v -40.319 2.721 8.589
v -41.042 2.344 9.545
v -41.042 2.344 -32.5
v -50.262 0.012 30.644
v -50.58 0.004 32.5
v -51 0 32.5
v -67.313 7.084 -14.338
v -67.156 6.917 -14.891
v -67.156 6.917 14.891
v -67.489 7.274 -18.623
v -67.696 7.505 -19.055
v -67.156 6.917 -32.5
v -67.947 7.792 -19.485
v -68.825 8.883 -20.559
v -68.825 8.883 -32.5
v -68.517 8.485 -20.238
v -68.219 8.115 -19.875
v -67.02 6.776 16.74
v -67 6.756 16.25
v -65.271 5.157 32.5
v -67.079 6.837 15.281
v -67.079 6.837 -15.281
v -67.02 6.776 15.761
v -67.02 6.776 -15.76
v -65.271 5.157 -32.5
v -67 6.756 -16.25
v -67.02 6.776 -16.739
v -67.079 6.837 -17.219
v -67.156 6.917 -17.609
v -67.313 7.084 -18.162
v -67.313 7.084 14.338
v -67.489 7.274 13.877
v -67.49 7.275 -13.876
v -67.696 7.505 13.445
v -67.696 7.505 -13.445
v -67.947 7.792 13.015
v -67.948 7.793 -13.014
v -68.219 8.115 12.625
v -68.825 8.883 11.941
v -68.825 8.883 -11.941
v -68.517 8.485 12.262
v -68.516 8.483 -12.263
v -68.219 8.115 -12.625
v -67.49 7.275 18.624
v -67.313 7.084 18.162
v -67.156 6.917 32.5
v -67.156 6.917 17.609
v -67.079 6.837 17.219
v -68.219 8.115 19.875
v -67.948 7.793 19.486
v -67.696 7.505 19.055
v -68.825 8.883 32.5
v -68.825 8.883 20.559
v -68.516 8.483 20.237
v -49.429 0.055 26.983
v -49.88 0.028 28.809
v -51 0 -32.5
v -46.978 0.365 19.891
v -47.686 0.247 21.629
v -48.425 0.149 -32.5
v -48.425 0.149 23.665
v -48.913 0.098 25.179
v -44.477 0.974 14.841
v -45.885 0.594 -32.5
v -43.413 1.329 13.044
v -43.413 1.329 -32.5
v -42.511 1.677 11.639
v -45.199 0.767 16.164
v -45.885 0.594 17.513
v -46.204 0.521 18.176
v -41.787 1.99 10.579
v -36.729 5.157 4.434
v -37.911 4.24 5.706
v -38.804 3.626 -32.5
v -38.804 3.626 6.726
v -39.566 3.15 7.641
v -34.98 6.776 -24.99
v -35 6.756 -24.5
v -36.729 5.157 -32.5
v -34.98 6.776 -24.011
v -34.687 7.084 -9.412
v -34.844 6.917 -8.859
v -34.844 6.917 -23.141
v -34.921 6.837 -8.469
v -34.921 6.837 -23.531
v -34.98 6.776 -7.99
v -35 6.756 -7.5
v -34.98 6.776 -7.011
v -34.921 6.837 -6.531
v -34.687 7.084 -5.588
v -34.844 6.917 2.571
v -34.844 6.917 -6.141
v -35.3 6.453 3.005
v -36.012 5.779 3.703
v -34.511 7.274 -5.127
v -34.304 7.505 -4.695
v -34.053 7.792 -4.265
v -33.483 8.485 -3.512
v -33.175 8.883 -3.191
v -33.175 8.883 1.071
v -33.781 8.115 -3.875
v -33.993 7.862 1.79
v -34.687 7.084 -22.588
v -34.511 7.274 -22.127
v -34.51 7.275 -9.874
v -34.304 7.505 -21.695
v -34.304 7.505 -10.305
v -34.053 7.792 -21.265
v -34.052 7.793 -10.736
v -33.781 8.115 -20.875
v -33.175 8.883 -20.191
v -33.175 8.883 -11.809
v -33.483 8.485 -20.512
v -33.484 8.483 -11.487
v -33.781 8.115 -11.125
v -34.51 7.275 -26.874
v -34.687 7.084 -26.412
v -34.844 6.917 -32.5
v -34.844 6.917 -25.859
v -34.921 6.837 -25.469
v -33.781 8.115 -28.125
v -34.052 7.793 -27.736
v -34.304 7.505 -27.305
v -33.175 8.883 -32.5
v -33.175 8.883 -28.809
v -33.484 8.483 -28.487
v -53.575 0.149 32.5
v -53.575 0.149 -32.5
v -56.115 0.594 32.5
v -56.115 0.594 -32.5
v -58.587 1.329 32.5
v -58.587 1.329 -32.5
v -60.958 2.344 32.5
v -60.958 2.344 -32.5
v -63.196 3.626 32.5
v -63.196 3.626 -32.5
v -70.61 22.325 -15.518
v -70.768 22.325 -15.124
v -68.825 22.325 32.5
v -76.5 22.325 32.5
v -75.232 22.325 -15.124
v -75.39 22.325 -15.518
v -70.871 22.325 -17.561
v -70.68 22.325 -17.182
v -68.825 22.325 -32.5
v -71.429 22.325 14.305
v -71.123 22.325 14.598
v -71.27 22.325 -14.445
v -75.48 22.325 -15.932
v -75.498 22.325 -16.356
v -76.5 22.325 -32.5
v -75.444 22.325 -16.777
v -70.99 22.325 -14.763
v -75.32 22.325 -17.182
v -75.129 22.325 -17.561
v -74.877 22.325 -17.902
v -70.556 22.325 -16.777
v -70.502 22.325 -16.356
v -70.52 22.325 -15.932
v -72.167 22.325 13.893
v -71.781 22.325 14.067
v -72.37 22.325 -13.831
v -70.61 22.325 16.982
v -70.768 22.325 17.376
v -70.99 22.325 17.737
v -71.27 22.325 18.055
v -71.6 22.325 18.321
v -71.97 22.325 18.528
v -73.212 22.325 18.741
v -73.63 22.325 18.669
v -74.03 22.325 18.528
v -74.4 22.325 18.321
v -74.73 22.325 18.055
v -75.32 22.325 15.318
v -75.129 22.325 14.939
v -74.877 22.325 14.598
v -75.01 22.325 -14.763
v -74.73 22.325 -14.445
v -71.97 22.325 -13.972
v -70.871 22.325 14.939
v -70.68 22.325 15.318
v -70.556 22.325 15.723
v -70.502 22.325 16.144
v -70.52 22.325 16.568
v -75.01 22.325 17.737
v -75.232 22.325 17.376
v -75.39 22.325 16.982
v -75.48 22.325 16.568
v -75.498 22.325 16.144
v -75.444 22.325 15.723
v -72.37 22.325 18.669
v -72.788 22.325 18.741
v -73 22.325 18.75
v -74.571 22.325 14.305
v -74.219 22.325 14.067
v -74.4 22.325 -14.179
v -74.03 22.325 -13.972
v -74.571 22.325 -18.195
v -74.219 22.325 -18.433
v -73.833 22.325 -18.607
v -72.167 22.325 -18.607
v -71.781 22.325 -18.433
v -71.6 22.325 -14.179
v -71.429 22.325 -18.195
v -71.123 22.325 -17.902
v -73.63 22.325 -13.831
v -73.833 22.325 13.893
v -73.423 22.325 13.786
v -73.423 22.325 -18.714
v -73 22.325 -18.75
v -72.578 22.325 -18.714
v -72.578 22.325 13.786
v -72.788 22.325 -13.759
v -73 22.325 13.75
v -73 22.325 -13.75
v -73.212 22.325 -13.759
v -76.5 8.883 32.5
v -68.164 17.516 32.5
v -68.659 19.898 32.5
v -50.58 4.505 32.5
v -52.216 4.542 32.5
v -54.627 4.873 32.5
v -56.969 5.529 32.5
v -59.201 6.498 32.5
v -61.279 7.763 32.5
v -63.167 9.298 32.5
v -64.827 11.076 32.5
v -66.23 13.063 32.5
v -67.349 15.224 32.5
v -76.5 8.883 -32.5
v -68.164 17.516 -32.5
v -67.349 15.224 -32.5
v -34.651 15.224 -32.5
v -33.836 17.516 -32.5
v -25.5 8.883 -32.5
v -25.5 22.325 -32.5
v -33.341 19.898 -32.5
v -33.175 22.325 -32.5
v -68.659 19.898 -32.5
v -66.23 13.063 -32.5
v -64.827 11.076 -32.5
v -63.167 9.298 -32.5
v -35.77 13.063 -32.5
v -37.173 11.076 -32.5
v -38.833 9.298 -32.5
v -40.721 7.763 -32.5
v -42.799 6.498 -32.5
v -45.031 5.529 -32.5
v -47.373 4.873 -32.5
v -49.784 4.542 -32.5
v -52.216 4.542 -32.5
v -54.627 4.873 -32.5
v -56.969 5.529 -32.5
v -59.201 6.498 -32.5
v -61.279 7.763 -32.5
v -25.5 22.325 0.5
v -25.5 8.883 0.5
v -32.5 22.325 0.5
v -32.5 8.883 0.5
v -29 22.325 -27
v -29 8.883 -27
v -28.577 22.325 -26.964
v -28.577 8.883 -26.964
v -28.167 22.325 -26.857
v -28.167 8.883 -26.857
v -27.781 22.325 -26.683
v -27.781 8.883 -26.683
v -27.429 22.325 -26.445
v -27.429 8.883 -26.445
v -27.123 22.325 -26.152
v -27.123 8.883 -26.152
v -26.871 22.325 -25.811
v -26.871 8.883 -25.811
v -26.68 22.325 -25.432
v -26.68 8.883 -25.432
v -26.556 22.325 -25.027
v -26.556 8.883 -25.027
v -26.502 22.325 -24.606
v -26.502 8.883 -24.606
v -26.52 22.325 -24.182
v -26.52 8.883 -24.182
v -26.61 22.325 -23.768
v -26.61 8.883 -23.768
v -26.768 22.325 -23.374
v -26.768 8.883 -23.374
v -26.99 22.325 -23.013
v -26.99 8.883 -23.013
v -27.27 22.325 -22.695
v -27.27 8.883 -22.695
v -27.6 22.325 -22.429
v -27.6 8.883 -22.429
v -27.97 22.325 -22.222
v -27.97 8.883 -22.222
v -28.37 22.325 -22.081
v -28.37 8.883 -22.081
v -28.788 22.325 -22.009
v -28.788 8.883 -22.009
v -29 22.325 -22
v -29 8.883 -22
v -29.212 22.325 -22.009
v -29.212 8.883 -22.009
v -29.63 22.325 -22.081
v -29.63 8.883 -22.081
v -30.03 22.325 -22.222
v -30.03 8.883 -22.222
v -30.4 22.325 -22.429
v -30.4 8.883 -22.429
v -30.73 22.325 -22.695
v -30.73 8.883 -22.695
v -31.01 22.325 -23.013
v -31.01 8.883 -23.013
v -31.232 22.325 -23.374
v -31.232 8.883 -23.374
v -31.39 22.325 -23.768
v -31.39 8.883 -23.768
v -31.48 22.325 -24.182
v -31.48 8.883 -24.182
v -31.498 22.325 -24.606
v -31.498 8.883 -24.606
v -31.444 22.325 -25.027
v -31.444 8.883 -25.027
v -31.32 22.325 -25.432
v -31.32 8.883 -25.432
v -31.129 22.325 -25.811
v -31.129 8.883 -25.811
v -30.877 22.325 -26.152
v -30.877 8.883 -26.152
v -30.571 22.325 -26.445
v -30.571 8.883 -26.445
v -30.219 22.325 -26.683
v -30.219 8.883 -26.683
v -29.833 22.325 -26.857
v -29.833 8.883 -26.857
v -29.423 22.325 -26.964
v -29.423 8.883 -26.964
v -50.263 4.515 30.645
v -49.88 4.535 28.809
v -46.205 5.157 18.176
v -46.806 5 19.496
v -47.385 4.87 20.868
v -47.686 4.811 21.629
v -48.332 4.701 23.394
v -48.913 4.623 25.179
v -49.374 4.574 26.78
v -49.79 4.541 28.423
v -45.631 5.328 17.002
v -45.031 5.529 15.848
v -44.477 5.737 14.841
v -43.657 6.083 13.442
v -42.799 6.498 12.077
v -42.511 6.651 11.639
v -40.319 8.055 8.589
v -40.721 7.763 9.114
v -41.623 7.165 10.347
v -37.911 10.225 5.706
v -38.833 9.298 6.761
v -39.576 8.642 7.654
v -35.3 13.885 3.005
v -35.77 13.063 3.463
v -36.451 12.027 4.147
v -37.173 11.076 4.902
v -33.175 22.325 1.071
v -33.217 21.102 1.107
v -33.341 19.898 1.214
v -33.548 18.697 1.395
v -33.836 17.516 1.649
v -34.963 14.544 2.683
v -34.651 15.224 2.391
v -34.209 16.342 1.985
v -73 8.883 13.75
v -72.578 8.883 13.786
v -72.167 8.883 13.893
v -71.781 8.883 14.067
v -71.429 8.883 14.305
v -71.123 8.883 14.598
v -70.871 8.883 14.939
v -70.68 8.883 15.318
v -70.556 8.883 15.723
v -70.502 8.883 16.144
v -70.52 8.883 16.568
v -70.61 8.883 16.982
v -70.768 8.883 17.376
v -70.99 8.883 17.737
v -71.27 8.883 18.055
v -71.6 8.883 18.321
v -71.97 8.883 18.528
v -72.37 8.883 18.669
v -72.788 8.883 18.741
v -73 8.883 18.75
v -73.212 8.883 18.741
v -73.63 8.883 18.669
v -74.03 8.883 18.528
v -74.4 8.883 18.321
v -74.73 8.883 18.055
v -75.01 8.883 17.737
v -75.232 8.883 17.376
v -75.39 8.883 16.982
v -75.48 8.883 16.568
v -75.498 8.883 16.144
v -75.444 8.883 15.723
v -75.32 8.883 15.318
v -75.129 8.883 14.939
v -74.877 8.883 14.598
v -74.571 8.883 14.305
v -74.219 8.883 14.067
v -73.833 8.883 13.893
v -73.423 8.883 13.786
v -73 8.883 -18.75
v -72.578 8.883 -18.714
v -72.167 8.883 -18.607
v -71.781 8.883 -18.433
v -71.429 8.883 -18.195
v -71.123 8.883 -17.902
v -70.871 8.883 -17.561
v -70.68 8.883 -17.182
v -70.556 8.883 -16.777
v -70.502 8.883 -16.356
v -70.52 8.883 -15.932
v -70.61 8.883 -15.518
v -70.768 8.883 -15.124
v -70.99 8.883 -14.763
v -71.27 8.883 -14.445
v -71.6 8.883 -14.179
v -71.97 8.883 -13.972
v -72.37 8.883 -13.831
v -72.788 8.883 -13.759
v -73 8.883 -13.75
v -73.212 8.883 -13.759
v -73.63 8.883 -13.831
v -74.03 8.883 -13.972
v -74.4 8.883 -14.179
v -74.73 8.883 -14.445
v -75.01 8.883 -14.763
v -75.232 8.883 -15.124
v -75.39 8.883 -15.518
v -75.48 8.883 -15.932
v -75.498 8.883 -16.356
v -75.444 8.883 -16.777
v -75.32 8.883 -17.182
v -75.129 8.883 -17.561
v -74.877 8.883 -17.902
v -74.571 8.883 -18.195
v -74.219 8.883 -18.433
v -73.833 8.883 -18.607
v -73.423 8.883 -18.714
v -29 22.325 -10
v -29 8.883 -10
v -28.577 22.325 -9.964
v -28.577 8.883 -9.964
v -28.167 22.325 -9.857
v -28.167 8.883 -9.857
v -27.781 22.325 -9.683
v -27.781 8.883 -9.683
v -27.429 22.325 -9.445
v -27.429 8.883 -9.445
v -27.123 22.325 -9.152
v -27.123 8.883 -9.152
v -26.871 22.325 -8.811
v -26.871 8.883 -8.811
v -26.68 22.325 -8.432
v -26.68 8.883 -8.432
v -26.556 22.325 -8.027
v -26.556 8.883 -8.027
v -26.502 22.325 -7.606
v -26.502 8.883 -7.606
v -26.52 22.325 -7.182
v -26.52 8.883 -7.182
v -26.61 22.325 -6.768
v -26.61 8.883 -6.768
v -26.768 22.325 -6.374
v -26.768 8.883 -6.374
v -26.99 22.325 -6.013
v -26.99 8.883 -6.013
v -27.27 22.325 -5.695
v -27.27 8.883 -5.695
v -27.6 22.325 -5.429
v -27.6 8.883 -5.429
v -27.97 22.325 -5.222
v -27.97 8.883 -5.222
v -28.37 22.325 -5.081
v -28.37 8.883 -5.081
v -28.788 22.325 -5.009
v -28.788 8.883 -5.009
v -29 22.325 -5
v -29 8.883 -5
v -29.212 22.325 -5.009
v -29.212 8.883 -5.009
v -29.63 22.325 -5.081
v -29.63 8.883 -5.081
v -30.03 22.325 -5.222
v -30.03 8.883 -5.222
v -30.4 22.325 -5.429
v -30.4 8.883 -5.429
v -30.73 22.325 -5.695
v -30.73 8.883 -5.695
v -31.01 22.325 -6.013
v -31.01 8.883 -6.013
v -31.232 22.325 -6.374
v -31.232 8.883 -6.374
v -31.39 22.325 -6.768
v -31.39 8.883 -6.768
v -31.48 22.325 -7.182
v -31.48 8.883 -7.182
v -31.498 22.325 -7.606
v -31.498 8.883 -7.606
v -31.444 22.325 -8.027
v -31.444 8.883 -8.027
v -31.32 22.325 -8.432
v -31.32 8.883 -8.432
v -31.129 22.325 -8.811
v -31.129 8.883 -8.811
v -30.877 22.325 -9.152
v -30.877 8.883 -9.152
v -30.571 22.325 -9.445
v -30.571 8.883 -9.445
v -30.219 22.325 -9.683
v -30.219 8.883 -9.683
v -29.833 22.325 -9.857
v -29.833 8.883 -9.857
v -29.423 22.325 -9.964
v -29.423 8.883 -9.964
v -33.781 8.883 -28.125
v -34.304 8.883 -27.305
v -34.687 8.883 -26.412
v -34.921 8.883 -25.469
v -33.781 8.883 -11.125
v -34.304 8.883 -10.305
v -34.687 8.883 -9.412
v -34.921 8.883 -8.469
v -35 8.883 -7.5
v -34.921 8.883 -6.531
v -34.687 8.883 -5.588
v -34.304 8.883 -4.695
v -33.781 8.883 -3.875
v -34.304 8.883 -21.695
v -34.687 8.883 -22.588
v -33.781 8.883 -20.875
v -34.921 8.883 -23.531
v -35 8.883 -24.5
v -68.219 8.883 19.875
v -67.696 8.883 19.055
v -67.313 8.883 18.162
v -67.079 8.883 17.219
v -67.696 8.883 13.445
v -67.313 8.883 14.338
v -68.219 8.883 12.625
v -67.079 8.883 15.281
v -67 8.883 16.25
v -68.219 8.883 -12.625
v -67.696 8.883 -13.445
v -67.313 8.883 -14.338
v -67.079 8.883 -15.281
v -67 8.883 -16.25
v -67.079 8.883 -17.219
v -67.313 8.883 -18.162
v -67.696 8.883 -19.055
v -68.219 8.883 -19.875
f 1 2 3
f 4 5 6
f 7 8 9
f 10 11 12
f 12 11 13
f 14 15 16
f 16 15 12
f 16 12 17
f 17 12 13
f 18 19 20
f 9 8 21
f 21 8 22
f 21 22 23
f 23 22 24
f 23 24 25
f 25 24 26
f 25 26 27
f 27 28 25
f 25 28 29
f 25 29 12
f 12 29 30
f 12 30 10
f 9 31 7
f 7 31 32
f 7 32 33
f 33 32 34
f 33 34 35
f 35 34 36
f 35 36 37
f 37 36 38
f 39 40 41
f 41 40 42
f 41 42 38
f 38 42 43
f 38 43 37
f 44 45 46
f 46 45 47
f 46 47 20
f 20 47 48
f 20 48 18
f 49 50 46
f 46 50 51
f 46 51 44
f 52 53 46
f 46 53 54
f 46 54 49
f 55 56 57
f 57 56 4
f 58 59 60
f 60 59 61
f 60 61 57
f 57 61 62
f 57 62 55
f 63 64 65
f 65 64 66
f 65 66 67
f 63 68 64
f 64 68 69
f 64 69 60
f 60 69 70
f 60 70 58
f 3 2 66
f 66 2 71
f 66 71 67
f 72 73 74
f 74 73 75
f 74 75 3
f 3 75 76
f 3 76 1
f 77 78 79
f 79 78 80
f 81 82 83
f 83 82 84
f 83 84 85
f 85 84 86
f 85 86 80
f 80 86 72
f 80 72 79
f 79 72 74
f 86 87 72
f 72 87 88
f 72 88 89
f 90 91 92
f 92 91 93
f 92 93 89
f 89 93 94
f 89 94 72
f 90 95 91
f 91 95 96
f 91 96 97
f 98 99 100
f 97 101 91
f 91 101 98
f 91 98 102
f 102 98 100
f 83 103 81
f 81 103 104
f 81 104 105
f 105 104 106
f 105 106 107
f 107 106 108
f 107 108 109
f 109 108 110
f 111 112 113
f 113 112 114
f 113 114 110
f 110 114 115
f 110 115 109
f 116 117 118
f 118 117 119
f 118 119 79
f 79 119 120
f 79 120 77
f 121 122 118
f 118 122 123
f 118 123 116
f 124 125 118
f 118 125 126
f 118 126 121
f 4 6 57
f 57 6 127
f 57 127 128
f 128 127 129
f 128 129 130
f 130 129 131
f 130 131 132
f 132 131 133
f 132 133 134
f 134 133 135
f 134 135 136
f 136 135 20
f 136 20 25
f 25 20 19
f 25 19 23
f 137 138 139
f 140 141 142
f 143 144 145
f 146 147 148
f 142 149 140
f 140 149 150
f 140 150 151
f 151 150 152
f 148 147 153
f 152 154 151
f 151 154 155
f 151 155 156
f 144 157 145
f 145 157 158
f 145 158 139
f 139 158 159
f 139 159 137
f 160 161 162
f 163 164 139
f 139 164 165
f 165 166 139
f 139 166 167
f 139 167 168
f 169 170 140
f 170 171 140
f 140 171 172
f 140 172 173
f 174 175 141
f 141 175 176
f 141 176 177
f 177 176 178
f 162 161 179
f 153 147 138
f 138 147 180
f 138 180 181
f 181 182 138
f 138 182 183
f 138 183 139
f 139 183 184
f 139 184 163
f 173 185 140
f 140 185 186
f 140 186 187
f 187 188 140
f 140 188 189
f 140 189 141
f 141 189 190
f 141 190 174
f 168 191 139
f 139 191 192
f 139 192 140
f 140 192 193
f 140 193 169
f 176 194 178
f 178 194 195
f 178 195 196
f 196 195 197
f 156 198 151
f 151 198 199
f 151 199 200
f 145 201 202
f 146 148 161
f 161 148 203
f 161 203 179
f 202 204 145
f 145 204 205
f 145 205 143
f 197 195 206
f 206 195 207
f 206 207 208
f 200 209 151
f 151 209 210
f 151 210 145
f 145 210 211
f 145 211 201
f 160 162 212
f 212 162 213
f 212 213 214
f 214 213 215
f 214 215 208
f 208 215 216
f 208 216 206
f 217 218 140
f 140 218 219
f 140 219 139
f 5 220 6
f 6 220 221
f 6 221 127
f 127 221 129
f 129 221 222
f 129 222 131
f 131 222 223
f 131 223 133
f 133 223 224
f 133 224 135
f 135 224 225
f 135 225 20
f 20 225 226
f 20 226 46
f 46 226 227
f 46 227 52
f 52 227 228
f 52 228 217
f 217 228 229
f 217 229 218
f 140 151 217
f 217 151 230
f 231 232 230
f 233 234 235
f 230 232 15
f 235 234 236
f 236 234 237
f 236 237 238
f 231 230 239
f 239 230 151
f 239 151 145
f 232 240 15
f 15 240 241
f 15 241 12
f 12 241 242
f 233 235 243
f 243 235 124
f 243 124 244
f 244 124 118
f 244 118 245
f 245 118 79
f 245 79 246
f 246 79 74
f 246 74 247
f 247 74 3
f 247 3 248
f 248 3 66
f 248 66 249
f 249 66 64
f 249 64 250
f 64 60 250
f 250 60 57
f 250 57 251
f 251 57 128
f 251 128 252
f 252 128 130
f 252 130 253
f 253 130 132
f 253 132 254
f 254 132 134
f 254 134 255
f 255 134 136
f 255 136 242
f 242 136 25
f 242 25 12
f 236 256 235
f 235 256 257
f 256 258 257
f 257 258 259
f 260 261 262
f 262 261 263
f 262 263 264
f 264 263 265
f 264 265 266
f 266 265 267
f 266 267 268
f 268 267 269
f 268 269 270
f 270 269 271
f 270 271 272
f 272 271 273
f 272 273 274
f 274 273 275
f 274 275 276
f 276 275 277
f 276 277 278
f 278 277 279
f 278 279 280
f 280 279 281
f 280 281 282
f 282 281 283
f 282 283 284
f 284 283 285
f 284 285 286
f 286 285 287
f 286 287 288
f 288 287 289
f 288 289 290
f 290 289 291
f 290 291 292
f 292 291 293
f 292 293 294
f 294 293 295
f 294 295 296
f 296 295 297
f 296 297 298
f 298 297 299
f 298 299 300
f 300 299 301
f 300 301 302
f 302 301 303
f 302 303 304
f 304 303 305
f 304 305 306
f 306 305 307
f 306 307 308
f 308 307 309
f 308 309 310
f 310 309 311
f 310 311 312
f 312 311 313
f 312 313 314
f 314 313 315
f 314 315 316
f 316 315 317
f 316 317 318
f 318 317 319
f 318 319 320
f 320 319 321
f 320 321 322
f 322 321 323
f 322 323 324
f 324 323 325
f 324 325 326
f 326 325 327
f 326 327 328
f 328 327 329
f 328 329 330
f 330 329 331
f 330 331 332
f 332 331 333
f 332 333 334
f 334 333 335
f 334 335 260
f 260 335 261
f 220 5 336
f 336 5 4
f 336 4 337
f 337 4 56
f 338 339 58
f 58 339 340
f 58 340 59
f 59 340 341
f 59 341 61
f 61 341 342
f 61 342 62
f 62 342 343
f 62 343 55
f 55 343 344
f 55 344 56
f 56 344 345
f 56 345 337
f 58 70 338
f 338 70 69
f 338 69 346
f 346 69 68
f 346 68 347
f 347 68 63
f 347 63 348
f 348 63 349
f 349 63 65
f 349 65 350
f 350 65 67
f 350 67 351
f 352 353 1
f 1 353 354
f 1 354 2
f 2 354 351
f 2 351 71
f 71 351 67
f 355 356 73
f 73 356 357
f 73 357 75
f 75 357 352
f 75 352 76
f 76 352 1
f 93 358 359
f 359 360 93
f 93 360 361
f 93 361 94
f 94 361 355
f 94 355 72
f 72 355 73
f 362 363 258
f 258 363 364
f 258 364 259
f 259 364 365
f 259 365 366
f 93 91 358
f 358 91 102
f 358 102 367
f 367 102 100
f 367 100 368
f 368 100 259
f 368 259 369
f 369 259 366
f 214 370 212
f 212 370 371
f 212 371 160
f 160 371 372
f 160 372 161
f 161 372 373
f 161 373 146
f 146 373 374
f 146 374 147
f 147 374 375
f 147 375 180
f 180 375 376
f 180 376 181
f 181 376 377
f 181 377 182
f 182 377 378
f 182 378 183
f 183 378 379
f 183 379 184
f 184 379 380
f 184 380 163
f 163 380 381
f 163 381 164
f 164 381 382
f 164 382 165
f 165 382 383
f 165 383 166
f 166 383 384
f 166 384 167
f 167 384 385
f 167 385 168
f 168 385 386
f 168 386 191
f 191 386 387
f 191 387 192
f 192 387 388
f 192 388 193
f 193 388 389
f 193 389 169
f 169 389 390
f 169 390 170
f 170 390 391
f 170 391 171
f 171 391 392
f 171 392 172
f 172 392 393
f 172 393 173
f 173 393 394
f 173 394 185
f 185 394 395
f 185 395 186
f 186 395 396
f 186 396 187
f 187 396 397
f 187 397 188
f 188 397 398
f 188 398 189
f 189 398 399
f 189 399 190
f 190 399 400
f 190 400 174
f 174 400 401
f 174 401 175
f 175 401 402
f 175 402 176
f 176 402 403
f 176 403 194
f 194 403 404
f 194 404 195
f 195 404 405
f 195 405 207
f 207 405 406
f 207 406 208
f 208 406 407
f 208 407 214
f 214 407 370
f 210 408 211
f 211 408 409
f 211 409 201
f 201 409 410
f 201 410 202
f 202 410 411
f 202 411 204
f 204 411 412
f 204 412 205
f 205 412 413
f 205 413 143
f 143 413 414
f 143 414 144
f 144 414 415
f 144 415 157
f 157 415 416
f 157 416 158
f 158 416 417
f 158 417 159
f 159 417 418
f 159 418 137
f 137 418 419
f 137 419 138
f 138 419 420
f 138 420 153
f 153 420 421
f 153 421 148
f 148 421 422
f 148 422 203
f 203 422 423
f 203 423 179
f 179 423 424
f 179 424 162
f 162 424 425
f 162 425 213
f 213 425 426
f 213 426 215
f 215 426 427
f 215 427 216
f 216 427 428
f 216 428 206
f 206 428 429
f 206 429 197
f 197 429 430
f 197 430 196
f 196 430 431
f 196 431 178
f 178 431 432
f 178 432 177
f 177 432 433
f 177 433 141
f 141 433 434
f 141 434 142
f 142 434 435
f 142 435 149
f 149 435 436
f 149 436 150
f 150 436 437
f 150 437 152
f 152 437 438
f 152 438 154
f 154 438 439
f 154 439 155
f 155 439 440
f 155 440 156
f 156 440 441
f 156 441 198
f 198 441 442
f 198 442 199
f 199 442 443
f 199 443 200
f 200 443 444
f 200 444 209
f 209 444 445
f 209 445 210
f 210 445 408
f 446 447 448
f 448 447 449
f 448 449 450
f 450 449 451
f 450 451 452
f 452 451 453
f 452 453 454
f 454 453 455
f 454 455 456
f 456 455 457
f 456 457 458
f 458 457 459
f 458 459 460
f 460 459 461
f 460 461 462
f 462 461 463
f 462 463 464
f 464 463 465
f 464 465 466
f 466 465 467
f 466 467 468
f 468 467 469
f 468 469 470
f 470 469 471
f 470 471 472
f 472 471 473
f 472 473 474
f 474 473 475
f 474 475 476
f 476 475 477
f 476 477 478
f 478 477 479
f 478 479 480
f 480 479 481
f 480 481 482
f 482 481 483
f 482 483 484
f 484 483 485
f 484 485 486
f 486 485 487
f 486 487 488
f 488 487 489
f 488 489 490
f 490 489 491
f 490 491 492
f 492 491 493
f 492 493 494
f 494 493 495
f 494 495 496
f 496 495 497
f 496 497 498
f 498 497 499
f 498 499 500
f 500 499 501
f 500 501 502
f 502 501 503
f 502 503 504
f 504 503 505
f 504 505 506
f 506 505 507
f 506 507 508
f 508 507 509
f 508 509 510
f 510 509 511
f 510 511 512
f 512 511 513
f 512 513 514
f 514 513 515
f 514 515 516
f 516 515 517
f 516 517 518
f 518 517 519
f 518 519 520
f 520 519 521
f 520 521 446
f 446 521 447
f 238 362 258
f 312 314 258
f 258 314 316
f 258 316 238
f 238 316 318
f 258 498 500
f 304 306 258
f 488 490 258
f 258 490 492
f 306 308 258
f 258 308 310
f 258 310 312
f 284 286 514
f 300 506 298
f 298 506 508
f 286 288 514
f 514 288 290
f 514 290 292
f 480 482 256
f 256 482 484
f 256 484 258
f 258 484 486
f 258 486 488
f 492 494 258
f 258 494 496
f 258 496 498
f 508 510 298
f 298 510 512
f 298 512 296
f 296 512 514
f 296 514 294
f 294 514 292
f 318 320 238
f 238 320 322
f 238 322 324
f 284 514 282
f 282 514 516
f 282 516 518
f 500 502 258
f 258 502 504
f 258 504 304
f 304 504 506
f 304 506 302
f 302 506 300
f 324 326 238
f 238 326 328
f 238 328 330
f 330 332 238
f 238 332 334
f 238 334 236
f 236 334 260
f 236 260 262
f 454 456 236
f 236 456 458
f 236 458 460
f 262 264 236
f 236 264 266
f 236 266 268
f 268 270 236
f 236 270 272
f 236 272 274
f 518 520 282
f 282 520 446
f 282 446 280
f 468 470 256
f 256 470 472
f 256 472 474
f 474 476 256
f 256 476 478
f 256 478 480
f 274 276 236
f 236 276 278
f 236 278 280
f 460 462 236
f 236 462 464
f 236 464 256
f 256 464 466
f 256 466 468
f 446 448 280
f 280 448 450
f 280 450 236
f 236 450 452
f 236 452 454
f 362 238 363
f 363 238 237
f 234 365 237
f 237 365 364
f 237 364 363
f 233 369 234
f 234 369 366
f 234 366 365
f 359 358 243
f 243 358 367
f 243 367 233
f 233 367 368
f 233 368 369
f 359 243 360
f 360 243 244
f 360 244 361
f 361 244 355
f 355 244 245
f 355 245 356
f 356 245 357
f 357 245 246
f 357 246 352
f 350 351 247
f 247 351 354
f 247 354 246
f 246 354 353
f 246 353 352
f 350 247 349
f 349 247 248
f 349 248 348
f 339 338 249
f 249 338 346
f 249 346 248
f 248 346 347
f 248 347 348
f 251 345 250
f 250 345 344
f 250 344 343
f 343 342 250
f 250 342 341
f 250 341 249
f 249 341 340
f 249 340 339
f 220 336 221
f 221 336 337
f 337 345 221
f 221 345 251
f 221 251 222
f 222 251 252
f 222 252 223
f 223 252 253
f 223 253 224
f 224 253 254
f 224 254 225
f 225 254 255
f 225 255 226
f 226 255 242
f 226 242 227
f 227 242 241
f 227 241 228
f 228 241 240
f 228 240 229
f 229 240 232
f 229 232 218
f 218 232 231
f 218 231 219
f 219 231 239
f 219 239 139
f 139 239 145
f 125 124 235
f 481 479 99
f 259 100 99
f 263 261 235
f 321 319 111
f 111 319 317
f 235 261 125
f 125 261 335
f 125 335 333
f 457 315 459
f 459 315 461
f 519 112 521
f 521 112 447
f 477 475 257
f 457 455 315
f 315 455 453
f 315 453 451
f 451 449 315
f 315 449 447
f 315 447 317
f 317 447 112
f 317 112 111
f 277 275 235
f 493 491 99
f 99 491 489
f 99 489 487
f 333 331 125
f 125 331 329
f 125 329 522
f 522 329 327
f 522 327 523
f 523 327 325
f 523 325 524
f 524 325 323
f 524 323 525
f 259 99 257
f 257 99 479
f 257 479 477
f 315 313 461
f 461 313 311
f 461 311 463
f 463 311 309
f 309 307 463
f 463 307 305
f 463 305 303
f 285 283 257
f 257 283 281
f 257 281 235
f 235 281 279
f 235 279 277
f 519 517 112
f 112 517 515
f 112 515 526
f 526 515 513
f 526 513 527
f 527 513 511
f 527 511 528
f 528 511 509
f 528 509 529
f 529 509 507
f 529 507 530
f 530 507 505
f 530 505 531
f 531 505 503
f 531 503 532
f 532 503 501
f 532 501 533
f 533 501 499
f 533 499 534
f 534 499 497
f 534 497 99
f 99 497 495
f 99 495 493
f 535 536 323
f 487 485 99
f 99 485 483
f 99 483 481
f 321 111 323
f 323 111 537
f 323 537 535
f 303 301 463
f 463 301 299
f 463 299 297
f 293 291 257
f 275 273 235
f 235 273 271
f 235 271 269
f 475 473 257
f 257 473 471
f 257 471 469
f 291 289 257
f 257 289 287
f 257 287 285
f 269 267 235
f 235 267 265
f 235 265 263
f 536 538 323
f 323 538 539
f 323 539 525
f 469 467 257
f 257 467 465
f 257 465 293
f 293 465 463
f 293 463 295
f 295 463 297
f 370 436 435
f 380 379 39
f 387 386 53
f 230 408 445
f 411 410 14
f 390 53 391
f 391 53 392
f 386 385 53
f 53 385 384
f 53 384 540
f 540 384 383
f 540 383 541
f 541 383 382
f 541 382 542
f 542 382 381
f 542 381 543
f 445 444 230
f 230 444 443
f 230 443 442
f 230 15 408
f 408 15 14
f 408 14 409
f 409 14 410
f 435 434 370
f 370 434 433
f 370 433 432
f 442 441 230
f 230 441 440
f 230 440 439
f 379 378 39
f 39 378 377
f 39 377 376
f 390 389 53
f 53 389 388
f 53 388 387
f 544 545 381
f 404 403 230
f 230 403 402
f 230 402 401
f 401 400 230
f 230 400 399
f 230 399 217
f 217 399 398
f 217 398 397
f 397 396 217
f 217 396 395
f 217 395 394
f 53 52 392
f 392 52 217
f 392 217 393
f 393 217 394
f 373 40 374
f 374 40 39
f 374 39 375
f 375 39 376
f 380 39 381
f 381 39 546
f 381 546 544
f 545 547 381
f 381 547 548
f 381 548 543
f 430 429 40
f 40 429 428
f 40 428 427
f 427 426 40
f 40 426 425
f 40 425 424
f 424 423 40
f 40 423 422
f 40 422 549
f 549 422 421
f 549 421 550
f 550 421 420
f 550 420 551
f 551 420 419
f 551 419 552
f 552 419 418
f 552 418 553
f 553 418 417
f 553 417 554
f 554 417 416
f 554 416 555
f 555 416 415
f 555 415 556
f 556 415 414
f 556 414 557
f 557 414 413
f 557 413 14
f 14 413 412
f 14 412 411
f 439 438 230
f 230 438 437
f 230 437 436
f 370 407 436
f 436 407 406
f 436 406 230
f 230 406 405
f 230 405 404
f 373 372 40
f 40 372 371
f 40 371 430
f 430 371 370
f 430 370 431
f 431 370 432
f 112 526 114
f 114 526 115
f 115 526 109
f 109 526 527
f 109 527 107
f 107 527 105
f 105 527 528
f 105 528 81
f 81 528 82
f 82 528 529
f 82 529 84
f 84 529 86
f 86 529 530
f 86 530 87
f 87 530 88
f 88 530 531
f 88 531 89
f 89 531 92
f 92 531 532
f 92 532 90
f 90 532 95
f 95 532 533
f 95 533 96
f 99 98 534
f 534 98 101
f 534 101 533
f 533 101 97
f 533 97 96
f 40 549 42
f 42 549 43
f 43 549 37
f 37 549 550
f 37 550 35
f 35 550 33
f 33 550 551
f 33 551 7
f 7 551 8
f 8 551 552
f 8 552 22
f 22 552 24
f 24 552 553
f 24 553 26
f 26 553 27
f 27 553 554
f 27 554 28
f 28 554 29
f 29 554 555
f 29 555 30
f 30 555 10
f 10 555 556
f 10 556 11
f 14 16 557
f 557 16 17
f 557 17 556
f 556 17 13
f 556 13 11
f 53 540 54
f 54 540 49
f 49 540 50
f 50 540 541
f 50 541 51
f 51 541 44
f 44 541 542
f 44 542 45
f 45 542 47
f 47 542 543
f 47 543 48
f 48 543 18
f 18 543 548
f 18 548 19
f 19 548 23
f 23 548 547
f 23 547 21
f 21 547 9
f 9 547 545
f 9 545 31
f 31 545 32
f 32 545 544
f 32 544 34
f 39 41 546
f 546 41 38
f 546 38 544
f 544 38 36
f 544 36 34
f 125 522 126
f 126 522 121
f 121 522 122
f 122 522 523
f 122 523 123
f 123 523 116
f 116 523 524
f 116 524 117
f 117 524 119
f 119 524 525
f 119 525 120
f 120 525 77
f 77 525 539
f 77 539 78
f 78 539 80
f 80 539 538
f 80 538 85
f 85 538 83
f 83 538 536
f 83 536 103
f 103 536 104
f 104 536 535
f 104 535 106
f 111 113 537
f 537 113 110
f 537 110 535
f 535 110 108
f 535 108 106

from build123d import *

# Parameters (mm, degrees)
SKETCH1_W           = 7
SKETCH1_H           = 65
SKETCH1_R           = 2.5
SKETCH1_H_2         = 33
BOSS_EXTRUDE1_DEPTH = 22.325
SKETCH2_R           = 17.825
CUT_EXTRUDE1_DEPTH  = 74.305222358
SKETCH3_R           = 6
CUT_EXTRUDE2_DEPTH  = 22.325


with BuildPart() as part:
    # Sketch1 → Boss-Extrude1 (new body)
    # profile 1 of 3: a face of its own
    with BuildSketch(Plane(origin=(0, 0, 0), x_dir=(1, 0, 0), z_dir=(0, 1, 0))):
        with Locations((22, 0)):
            Rectangle(SKETCH1_W, SKETCH1_H)
        with Locations(Location((22, -16.25, 0), (0, 0, 90))):
            Circle(SKETCH1_R, mode=Mode.SUBTRACT)
        with Locations(Location((22, 16.25, 0), (0, 0, 90))):
            Circle(SKETCH1_R, mode=Mode.SUBTRACT)
    # profile 2 of 3: a face of its own
    with BuildSketch(Plane(origin=(0, 0, 0), x_dir=(1, 0, 0), z_dir=(0, 1, 0))):
        with BuildLine():
            Line((-18.5, 32.5), (-18.5, -0.5))
            ThreePointArc((-18.5, -0.5), (-6.523379041, -14.840809158), (-0.42, -32.5))
            Line((-0.42, -32.5), (18.5, -32.5))
            Line((18.5, -32.5), (18.5, 32.5))
            Line((18.5, 32.5), (-18.5, 32.5))
        make_face()
    # profile 3 of 3: a face of its own
    with BuildSketch(Plane(origin=(0, 0, 0), x_dir=(1, 0, 0), z_dir=(0, 1, 0))):
        with Locations((-22, 16)):
            Rectangle(SKETCH1_W, SKETCH1_H_2)
        with Locations(Location((-22, 7.5, 0), (0, 0, 90))):
            Circle(SKETCH1_R, mode=Mode.SUBTRACT)
        with Locations(Location((-22, 24.5, 0), (0, 0, 90))):
            Circle(SKETCH1_R, mode=Mode.SUBTRACT)
    extrude(amount=BOSS_EXTRUDE1_DEPTH)

    # Sketch2 → Cut-Extrude1 (cut, through all)
    with BuildSketch(Plane(origin=(0, 0, -32.5), x_dir=(-1, 0, 0), z_dir=(0, 0, -1))):
        with Locations((0, 22.325)):
            Circle(SKETCH2_R)
        with BuildLine():
            Line((-17.825, 8.88345991), (-25.5, 8.88345991))
            Line((-25.5, 8.88345991), (-25.5, -2.88343075))
            Line((-25.5, -2.88343075), (25.5, -2.88343075))
            Line((25.5, -2.88343075), (25.5, 8.88345991))
            Line((25.5, 8.88345991), (17.825, 8.88345991))
            ThreePointArc((17.825, 8.88345991), (0, 0), (-17.825, 8.88345991))
        make_face()
    extrude(amount=-CUT_EXTRUDE1_DEPTH, mode=Mode.SUBTRACT)

    # Sketch3 → Cut-Extrude2 (cut)
    with BuildSketch(Plane.XZ.offset(-8.88345991)):
        with Locations((-22, -7.5)):
            Circle(SKETCH3_R)
        with Locations((22, -16.25)):
            Circle(SKETCH3_R)
        with Locations((22, 16.25)):
            Circle(SKETCH3_R)
        with Locations((-22, -24.5)):
            Circle(SKETCH3_R)
    extrude(amount=CUT_EXTRUDE2_DEPTH, mode=Mode.SUBTRACT)


with BuildPart() as body_2:
    # Mirror2: mirrored copy
    add(part.part.mirror(Plane(origin=(-25.5, 22.325, 0), x_dir=(0, 0, 1), z_dir=(-1, 0, 0))))


solid = body_2.part
